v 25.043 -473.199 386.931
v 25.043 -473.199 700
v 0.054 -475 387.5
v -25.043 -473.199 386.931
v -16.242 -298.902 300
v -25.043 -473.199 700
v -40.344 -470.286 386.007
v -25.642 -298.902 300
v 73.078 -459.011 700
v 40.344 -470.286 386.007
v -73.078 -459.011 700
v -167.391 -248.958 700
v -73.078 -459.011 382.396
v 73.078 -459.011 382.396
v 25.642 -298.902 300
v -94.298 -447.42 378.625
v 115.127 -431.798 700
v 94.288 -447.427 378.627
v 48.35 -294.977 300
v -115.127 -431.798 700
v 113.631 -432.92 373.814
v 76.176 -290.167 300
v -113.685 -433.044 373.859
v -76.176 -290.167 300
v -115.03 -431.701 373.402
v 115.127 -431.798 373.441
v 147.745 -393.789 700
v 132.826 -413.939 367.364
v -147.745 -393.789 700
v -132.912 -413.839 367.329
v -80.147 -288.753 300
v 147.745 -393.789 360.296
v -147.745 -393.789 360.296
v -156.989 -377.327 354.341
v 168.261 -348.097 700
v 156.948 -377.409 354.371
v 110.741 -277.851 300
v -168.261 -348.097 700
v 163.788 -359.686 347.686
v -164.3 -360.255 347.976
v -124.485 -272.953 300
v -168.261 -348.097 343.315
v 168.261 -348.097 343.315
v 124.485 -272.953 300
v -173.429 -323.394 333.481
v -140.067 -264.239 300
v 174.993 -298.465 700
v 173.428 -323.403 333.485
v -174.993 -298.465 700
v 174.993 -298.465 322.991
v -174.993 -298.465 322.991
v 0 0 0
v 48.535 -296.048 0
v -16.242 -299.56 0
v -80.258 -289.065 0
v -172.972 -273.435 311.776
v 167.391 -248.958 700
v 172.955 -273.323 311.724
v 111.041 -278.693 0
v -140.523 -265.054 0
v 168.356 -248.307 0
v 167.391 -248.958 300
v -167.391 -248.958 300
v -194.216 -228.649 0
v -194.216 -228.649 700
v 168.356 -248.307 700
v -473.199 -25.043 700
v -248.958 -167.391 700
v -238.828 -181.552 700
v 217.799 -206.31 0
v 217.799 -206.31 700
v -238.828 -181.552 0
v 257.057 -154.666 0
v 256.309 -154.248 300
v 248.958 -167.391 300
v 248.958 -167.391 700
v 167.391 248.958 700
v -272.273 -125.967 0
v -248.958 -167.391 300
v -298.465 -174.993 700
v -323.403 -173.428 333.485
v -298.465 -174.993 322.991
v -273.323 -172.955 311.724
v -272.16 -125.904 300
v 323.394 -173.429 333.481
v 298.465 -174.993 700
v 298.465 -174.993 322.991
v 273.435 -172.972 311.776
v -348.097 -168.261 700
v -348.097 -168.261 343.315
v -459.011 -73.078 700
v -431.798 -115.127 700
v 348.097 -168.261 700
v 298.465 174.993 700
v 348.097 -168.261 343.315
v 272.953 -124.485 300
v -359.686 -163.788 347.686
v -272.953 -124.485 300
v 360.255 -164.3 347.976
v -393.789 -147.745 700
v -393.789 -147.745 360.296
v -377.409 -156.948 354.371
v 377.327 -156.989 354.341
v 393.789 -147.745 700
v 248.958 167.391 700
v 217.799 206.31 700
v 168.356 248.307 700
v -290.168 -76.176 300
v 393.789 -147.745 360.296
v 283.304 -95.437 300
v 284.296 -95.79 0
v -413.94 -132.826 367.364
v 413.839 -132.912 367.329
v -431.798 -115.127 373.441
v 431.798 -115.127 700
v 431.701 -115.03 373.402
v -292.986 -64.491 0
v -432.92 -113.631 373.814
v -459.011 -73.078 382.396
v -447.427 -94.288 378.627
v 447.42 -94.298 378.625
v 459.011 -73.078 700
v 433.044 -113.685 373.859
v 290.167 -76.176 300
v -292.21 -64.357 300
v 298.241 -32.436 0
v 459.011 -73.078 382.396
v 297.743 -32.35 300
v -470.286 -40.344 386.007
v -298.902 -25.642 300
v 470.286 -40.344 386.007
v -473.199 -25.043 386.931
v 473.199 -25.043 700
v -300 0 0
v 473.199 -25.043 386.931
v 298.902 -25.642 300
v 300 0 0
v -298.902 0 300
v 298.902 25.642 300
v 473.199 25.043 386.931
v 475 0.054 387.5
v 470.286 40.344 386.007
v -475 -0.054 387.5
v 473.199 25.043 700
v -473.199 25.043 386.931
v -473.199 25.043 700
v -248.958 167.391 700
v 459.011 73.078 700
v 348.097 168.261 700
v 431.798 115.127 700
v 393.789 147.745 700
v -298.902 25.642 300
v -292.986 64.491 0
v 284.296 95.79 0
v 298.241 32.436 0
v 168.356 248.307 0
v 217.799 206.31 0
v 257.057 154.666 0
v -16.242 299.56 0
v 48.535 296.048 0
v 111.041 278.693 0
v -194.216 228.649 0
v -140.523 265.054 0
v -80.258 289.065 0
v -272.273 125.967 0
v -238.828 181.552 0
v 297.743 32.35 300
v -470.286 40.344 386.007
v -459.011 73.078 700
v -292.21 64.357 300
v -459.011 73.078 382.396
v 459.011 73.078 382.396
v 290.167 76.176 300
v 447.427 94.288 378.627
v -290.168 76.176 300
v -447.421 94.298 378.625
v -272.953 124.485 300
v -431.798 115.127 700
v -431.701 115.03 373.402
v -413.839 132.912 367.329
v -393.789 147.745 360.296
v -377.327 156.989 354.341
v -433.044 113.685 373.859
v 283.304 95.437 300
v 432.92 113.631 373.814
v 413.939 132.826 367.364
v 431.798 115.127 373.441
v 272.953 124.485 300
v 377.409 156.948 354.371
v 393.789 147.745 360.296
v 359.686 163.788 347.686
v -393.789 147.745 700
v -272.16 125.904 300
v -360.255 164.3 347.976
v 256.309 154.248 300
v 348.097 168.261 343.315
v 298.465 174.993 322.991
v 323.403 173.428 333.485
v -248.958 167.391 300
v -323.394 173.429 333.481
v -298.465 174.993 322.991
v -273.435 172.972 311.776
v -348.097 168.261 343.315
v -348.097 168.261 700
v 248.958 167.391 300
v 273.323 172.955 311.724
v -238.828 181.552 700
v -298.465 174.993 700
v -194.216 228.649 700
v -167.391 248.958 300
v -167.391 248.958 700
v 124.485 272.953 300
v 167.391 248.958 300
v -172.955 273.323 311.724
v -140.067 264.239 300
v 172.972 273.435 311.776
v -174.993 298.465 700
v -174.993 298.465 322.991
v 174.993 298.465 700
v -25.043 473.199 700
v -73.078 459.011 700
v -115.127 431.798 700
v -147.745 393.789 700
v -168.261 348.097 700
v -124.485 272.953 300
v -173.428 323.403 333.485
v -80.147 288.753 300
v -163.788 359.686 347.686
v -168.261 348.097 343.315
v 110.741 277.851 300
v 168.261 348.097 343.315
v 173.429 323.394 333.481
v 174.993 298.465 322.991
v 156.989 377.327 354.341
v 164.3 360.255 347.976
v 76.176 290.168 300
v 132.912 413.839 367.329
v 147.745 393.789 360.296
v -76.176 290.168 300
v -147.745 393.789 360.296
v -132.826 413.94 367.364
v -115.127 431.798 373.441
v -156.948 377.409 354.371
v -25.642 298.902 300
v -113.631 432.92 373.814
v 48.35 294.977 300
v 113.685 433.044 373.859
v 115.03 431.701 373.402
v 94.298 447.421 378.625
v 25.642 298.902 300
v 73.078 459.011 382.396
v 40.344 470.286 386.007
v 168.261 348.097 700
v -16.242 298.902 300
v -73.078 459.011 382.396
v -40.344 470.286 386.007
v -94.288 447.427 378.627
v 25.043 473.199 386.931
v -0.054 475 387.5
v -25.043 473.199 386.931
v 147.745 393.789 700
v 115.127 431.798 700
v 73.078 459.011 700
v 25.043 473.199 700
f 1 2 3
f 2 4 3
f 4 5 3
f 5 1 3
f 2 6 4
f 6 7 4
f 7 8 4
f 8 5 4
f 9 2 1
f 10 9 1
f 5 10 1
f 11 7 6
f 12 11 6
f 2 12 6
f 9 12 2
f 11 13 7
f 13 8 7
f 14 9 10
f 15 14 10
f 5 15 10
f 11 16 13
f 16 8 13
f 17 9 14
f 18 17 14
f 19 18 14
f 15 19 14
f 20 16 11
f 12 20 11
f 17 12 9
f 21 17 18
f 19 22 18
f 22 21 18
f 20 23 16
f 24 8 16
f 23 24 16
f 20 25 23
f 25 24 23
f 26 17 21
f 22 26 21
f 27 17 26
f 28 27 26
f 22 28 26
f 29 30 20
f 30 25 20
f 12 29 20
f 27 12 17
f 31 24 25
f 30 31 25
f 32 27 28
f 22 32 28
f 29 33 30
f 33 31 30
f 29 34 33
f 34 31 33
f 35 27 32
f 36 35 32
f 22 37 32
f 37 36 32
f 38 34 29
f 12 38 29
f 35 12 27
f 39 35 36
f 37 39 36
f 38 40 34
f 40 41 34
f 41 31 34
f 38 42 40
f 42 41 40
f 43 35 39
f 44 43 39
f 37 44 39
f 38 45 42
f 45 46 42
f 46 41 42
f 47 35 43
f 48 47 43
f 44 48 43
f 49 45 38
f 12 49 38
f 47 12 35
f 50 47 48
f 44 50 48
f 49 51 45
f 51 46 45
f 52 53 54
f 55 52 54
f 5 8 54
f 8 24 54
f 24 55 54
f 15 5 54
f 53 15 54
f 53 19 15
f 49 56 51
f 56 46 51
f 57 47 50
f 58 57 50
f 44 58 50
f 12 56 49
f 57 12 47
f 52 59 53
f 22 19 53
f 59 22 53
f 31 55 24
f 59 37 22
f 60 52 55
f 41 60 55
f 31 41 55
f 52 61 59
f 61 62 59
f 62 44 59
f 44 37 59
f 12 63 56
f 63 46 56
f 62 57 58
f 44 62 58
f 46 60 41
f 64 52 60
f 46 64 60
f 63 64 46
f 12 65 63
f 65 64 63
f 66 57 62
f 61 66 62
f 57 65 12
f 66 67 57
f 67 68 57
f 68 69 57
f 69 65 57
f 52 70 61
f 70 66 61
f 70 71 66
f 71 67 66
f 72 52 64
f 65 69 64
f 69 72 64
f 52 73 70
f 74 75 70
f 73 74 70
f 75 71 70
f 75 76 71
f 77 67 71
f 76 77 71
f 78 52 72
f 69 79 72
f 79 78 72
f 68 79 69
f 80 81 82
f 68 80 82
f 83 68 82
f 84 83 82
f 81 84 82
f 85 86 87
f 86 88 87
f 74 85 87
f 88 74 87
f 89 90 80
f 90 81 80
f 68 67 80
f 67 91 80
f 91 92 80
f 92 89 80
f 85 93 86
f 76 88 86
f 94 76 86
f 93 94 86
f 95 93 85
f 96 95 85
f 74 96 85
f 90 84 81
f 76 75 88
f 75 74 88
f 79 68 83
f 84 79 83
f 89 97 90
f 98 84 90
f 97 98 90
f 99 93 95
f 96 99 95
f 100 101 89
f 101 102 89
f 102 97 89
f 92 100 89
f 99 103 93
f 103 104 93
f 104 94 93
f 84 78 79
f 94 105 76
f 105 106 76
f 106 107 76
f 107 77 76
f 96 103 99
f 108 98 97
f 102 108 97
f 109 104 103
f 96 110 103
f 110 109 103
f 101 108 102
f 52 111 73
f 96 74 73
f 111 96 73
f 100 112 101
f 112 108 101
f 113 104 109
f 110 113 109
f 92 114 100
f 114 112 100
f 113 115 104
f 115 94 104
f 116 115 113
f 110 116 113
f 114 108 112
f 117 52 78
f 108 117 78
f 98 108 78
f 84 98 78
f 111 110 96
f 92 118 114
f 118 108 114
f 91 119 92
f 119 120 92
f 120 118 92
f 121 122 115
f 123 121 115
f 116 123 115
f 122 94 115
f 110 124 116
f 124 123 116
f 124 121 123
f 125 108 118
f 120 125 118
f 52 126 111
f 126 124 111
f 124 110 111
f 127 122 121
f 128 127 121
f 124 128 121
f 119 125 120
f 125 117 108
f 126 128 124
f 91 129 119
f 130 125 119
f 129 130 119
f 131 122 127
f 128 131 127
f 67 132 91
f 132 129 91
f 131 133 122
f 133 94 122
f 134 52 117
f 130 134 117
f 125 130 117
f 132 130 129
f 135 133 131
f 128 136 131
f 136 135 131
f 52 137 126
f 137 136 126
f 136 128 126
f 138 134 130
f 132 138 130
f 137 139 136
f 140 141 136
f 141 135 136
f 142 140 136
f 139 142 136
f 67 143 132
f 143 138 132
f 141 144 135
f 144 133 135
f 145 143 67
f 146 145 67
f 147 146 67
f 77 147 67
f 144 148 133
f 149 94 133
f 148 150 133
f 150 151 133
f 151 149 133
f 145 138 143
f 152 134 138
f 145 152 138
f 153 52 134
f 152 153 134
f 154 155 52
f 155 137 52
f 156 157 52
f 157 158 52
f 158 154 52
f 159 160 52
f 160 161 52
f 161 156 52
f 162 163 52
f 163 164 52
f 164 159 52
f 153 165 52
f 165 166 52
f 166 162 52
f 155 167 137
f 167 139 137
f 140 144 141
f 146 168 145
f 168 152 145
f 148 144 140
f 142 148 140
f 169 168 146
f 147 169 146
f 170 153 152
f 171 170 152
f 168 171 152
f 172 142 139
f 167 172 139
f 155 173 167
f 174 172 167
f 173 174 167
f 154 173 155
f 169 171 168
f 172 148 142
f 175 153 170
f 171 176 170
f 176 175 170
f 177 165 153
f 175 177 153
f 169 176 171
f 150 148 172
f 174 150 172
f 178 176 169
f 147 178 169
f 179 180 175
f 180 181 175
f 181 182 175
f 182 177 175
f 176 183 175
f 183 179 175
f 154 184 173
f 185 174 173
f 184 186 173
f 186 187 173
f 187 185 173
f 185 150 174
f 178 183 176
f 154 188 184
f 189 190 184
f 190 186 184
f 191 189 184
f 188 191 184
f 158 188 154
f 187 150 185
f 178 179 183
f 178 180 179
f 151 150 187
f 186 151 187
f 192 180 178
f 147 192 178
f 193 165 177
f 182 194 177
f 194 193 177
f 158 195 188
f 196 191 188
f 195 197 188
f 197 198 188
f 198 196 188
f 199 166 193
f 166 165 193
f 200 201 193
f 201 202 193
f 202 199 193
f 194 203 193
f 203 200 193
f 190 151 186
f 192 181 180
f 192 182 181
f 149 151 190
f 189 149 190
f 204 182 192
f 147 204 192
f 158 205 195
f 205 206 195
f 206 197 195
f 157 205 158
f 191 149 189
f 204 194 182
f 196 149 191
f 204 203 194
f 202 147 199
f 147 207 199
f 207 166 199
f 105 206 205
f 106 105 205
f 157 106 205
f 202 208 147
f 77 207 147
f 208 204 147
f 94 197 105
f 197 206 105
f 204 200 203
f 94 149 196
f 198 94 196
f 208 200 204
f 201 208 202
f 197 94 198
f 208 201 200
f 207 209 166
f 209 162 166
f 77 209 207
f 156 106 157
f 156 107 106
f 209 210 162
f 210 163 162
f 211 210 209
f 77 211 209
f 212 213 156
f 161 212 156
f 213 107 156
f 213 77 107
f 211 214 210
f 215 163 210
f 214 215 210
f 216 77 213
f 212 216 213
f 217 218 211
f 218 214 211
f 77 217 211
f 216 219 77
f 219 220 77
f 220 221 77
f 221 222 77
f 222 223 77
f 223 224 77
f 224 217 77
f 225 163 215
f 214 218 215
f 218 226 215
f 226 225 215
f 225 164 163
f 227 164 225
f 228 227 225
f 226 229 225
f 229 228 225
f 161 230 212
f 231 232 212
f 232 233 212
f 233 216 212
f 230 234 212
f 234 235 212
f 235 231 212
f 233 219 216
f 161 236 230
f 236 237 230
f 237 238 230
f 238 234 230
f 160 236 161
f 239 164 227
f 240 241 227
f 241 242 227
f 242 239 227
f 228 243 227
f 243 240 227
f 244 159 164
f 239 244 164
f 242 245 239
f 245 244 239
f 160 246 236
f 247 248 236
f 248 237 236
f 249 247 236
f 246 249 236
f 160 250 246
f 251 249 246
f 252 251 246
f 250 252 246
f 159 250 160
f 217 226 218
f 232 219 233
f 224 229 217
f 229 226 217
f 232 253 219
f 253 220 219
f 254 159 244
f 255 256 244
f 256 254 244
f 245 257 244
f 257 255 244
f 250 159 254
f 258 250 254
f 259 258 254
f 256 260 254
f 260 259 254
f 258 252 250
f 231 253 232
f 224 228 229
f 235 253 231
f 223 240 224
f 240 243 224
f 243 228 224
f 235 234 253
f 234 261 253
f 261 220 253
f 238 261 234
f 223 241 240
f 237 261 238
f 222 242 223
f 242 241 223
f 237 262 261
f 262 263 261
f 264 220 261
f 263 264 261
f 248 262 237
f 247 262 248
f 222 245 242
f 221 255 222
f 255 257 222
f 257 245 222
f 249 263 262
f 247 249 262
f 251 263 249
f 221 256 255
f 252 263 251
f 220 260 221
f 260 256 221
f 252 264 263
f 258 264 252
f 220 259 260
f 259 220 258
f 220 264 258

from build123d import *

# Parameters (mm, degrees)
EXTRUDE_1_DEPTH = 700


with BuildPart() as part:
    # 草图1 → 凸台-拉伸1 (new body)
    with BuildSketch(Plane.XY):
        with BuildLine():
            ThreePointArc((167.391004131, -248.958333333), (212.132034356, -212.132034356), (248.958333333, -167.391004131))
            ThreePointArc((248.958333333, -167.391004131), (475, 0), (248.958333333, 167.391004131))
            ThreePointArc((248.958333333, 167.391004131), (212.132034356, 212.132034356), (167.391004131, 248.958333333))
            ThreePointArc((167.391004131, 248.958333333), (0, 475), (-167.391004131, 248.958333333))
            ThreePointArc((-167.391004131, 248.958333333), (-212.132034356, 212.132034356), (-248.958333333, 167.391004131))
            ThreePointArc((-248.958333333, 167.391004131), (-475, 0), (-248.958333333, -167.391004131))
            ThreePointArc((-248.958333333, -167.391004131), (-212.132034356, -212.132034356), (-167.391004131, -248.958333333))
            ThreePointArc((-167.391004131, -248.958333333), (0, -475), (167.391004131, -248.958333333))
        make_face()
    extrude(amount=EXTRUDE_1_DEPTH)

    # 草图2 → 切除-旋转1 (revolve, cut)
    with BuildSketch(Plane(origin=(0, 0, 0), x_dir=(1, 0, 0), z_dir=(0, 1, 0)), mode=Mode.PRIVATE) as cut_revolve_1_sk:
        Polygon((500, -400), (500, 0), (300, 0), (300, -300), align=None)
    revolve(cut_revolve_1_sk.sketch.rotate(Axis((0, 0, 700), (0, 0, -1)), 146.0844734), axis=Axis((0, 0, 700), (0, 0, -1)), mode=Mode.SUBTRACT)


solid = part.part
